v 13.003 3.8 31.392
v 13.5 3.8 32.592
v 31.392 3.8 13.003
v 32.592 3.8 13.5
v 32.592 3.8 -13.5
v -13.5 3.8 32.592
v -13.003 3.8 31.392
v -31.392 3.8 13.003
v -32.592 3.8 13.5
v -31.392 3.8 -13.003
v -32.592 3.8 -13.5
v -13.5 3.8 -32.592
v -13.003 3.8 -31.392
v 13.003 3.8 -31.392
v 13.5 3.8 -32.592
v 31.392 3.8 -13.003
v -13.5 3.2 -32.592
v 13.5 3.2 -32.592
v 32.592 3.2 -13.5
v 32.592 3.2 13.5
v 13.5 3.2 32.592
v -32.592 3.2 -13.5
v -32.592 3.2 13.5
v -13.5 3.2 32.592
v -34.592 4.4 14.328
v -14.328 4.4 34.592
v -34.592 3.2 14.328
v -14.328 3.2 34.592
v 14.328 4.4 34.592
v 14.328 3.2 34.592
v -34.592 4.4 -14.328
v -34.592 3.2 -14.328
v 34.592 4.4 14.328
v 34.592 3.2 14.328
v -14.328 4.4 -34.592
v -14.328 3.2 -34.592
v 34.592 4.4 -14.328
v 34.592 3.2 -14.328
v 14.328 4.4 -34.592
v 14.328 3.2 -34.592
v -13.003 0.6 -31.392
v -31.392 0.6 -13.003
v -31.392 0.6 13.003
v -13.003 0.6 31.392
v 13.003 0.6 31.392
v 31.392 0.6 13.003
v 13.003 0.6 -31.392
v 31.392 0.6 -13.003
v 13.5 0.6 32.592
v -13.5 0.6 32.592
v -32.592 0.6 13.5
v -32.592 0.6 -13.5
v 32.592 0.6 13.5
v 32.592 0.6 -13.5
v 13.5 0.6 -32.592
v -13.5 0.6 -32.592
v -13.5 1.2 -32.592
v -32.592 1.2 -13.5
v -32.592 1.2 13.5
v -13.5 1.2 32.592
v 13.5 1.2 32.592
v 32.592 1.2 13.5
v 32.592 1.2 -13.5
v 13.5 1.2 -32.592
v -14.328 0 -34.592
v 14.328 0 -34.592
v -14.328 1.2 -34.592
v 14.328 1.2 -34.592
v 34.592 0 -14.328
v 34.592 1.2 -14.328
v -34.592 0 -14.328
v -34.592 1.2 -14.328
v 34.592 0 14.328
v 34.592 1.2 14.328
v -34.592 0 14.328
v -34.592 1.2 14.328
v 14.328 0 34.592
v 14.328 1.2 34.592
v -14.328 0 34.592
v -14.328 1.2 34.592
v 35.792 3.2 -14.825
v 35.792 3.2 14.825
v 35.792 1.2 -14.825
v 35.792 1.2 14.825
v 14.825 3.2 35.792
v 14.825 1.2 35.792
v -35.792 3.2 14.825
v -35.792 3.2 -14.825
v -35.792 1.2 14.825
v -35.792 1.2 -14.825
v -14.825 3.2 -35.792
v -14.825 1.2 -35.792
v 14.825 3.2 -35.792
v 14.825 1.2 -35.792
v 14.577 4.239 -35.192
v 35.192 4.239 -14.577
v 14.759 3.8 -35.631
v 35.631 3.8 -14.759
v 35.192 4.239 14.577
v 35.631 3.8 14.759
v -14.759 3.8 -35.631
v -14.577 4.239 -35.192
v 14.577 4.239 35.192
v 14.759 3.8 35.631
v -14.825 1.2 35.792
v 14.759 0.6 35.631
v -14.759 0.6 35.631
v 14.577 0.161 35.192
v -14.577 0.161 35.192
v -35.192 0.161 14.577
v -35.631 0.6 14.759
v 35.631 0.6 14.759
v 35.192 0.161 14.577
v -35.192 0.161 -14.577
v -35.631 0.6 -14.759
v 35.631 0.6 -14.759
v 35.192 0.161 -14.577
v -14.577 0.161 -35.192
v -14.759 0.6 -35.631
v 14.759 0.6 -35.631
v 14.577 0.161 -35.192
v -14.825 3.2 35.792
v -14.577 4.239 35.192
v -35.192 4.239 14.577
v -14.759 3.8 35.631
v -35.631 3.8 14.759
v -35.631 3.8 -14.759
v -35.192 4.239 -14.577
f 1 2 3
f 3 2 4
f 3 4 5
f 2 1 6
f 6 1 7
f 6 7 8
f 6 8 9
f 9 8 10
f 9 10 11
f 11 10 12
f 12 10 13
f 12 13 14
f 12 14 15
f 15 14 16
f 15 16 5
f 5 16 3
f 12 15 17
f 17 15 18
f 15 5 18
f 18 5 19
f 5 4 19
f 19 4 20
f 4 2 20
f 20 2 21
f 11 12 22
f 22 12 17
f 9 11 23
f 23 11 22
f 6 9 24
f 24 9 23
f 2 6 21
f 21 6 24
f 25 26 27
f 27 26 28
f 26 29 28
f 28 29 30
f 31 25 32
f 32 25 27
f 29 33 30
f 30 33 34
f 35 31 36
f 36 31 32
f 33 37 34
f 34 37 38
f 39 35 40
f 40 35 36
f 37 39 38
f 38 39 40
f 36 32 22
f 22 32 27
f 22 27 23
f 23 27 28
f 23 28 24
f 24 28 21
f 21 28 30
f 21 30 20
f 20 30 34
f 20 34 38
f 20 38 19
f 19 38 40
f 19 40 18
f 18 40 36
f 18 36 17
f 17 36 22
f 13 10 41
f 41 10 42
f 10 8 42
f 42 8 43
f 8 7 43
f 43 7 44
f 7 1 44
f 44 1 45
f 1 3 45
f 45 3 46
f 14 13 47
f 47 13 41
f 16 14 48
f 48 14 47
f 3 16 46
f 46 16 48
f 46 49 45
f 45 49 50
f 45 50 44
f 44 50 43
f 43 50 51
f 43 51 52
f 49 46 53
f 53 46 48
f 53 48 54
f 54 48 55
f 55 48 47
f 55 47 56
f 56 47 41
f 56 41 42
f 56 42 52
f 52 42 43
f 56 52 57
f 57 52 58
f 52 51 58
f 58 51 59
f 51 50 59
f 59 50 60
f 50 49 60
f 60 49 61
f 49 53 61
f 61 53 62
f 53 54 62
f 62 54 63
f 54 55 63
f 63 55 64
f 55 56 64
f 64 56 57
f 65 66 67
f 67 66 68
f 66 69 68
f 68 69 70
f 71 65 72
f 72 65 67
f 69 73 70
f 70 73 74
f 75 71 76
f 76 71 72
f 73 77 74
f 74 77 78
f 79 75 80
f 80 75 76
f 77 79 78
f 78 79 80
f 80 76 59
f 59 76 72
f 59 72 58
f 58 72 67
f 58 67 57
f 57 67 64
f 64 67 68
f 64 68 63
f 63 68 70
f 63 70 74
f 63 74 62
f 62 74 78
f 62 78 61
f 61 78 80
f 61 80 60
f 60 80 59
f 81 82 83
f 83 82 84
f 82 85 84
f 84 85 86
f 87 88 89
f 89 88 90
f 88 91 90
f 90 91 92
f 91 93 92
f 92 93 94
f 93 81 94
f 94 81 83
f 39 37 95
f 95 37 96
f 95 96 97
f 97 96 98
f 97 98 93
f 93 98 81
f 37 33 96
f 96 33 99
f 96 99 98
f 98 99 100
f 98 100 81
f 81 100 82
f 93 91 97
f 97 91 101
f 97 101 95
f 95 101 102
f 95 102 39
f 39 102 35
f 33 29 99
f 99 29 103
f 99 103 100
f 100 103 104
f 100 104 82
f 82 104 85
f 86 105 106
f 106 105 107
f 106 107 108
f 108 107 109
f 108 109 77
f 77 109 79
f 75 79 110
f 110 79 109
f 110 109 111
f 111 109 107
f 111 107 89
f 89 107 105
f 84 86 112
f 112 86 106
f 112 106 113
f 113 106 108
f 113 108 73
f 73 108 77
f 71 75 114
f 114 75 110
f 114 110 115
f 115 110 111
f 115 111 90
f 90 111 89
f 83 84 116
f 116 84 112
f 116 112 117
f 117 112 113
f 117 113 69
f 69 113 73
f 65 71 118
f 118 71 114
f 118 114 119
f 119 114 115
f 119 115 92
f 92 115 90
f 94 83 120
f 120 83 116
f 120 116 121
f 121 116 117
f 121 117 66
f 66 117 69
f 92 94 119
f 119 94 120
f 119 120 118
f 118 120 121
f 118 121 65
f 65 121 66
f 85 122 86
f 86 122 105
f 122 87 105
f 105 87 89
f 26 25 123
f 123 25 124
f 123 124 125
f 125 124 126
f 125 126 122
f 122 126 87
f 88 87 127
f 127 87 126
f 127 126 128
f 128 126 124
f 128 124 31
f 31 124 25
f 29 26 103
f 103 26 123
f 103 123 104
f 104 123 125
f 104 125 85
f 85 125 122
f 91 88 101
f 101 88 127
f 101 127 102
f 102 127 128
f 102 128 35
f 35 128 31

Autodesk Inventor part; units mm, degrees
ref_plane "YZ Plane" through (0, 0, 0) normal (1, 0, 0) x (0, 1, 0)
ref_plane "XZ Plane" through (0, 0, 0) normal (0, 1, 0) x (-1, 0, 0)
sketch "스케치1" plane through (0, 0, 0) normal (0, 1, 0) x (-1, 0, 0)
  line L0 (-32.5919, 13.5) -> (-13.5, 32.5919)
  line L1 (-13.5, 32.5919) -> (13.5, 32.5919)
  line L2 (13.5, 32.5919) -> (32.5919, 13.5)
  line L3 (32.5919, 13.5) -> (32.5919, -13.5)
  line L4 (32.5919, -13.5) -> (13.5, -32.5919)
  line L5 (13.5, -32.5919) -> (-13.5, -32.5919)
  line L6 (-13.5, -32.5919) -> (-32.5919, -13.5)
  line L7 (-32.5919, -13.5) -> (-32.5919, 13.5)
  line L8 (35.7919, 14.8255) -> (35.7919, -14.8255)
  line L9 (35.7919, -14.8255) -> (14.8255, -35.7919)
  line L10 (14.8255, -35.7919) -> (-14.8255, -35.7919)
  line L11 (-14.8255, -35.7919) -> (-35.7919, -14.8255)
  line L12 (-35.7919, -14.8255) -> (-35.7919, 14.8255)
  line L13 (-35.7919, 14.8255) -> (-14.8255, 35.7919)
  line L14 (-14.8255, 35.7919) -> (14.8255, 35.7919)
  line L15 (14.8255, 35.7919) -> (35.7919, 14.8255)
  point P0 (0, 0)
  point P1 (0, 0)
  point P2 (0, 0)
  dimension "d0" = 27
  dimension "d1" = 3.2
extrude "돌출1" add sketch "스케치1" along normal blind 4.4 contours L0 L1 L2 L3 L4 L5 L6 L7 | L8 L9 L10 L11 L12 L13 L14 L15
sketch "스케치3" plane through (0, 0, 0) normal (0, -1, 0) x (1, 0, 0)
  line L0 (-13.5, 32.5919) -> (13.5, 32.5919)
  line L1 (13.5, 32.5919) -> (32.5919, 13.5)
  line L2 (32.5919, 13.5) -> (32.5919, -13.5)
  line L3 (32.5919, -13.5) -> (13.5, -32.5919)
  line L4 (13.5, -32.5919) -> (-13.5, -32.5919)
  line L5 (-13.5, -32.5919) -> (-32.5919, -13.5)
  line L6 (-32.5919, -13.5) -> (-32.5919, 13.5)
  line L7 (-32.5919, 13.5) -> (-13.5, 32.5919)
  line L8 (-14.3284, 34.5919) -> (14.3284, 34.5919)
  line L9 (14.3284, 34.5919) -> (34.5919, 14.3284)
  line L10 (34.5919, 14.3284) -> (34.5919, -14.3284)
  line L11 (34.5919, -14.3284) -> (14.3284, -34.5919)
  line L12 (14.3284, -34.5919) -> (-14.3284, -34.5919)
  line L13 (-14.3284, -34.5919) -> (-34.5919, -14.3284)
  line L14 (-34.5919, -14.3284) -> (-34.5919, 14.3284)
  line L15 (-34.5919, 14.3284) -> (-14.3284, 34.5919)
  point P0 (0, 0)
  point P1 (0, 0)
  point P2 (0, 0)
  point P3 (0, 0)
  dimension "d8" = 27
  dimension "d9" = 2
extrude "돌출3" cut sketch "스케치3" against normal blind 1.2
sketch "스케치14" plane through (0, 0, 0) normal (0, -1, 0) x (1, 0, 0)
  line L0 (32.5919, 13.5) -> (13.5, 32.5919) projected
  line L1 (13.5, 32.5919) -> (-13.5, 32.5919) projected
  line L2 (-13.5, 32.5919) -> (-32.5919, 13.5) projected
  line L3 (-32.5919, 13.5) -> (-32.5919, -13.5) projected
  line L4 (-32.5919, -13.5) -> (-13.5, -32.5919) projected
  line L5 (-13.5, -32.5919) -> (13.5, -32.5919) projected
  line L6 (13.5, -32.5919) -> (32.5919, -13.5) projected
  line L7 (32.5919, -13.5) -> (32.5919, 13.5) projected
  point P0 (0, 0)
extrude "돌출16" cut sketch "스케치14" against normal blind 0.6
sketch "스케치15" plane through (0, 0.6, 0) normal (0, -1, 0) x (1, 0, 0)
  line L0 (-13.0029, 31.3919) -> (13.0029, 31.3919)
  line L1 (13.0029, 31.3919) -> (31.3919, 13.0029)
  line L2 (31.3919, 13.0029) -> (31.3919, -13.0029)
  line L3 (31.3919, -13.0029) -> (13.0029, -31.3919)
  line L4 (13.0029, -31.3919) -> (-13.0029, -31.3919)
  line L5 (-13.0029, -31.3919) -> (-31.3919, -13.0029)
  line L6 (-31.3919, -13.0029) -> (-31.3919, 13.0029)
  line L7 (-31.3919, 13.0029) -> (-13.0029, 31.3919)
  line L8 (-13.5, 32.5919) -> (13.5, 32.5919) projected
  point P0 (0, 0)
  point P1 (0, 0)
  dimension "d140" = 1.2
extrude "돌출17" cut sketch "스케치15" against normal up to surface (3.8 mm away)
ref_plane "작업 평면3" through (0, 2.2, 0) normal (0, -1, 0) x (1, 0, 0)
mirror "미러6" about plane through (0, 2.2, 0) normal (0, -1, 0) of "돌출3", "돌출16"
fillet "모깎기2" radius 1.2 16 edges at (0, 0, 35.7919) (-25.3087, 0, 25.3087) (-35.7919, 0, 0) (-25.3087, 0, -25.3087) (0, 0, -35.7919) (25.3087, 0, -25.3087) (35.7919, 0, 0) (25.3087, 0, 25.3087) (-25.3087, 4.4, 25.3087) (-35.7919, 4.4, 0) (-25.3087, 4.4, -25.3087) (0, 4.4, -35.7919) (25.3087, 4.4, -25.3087) (35.7919, 4.4, 0) (25.3087, 4.4, 25.3087) (0, 4.4, 35.7919)
properties part number "OV-PAM_ring_2"
